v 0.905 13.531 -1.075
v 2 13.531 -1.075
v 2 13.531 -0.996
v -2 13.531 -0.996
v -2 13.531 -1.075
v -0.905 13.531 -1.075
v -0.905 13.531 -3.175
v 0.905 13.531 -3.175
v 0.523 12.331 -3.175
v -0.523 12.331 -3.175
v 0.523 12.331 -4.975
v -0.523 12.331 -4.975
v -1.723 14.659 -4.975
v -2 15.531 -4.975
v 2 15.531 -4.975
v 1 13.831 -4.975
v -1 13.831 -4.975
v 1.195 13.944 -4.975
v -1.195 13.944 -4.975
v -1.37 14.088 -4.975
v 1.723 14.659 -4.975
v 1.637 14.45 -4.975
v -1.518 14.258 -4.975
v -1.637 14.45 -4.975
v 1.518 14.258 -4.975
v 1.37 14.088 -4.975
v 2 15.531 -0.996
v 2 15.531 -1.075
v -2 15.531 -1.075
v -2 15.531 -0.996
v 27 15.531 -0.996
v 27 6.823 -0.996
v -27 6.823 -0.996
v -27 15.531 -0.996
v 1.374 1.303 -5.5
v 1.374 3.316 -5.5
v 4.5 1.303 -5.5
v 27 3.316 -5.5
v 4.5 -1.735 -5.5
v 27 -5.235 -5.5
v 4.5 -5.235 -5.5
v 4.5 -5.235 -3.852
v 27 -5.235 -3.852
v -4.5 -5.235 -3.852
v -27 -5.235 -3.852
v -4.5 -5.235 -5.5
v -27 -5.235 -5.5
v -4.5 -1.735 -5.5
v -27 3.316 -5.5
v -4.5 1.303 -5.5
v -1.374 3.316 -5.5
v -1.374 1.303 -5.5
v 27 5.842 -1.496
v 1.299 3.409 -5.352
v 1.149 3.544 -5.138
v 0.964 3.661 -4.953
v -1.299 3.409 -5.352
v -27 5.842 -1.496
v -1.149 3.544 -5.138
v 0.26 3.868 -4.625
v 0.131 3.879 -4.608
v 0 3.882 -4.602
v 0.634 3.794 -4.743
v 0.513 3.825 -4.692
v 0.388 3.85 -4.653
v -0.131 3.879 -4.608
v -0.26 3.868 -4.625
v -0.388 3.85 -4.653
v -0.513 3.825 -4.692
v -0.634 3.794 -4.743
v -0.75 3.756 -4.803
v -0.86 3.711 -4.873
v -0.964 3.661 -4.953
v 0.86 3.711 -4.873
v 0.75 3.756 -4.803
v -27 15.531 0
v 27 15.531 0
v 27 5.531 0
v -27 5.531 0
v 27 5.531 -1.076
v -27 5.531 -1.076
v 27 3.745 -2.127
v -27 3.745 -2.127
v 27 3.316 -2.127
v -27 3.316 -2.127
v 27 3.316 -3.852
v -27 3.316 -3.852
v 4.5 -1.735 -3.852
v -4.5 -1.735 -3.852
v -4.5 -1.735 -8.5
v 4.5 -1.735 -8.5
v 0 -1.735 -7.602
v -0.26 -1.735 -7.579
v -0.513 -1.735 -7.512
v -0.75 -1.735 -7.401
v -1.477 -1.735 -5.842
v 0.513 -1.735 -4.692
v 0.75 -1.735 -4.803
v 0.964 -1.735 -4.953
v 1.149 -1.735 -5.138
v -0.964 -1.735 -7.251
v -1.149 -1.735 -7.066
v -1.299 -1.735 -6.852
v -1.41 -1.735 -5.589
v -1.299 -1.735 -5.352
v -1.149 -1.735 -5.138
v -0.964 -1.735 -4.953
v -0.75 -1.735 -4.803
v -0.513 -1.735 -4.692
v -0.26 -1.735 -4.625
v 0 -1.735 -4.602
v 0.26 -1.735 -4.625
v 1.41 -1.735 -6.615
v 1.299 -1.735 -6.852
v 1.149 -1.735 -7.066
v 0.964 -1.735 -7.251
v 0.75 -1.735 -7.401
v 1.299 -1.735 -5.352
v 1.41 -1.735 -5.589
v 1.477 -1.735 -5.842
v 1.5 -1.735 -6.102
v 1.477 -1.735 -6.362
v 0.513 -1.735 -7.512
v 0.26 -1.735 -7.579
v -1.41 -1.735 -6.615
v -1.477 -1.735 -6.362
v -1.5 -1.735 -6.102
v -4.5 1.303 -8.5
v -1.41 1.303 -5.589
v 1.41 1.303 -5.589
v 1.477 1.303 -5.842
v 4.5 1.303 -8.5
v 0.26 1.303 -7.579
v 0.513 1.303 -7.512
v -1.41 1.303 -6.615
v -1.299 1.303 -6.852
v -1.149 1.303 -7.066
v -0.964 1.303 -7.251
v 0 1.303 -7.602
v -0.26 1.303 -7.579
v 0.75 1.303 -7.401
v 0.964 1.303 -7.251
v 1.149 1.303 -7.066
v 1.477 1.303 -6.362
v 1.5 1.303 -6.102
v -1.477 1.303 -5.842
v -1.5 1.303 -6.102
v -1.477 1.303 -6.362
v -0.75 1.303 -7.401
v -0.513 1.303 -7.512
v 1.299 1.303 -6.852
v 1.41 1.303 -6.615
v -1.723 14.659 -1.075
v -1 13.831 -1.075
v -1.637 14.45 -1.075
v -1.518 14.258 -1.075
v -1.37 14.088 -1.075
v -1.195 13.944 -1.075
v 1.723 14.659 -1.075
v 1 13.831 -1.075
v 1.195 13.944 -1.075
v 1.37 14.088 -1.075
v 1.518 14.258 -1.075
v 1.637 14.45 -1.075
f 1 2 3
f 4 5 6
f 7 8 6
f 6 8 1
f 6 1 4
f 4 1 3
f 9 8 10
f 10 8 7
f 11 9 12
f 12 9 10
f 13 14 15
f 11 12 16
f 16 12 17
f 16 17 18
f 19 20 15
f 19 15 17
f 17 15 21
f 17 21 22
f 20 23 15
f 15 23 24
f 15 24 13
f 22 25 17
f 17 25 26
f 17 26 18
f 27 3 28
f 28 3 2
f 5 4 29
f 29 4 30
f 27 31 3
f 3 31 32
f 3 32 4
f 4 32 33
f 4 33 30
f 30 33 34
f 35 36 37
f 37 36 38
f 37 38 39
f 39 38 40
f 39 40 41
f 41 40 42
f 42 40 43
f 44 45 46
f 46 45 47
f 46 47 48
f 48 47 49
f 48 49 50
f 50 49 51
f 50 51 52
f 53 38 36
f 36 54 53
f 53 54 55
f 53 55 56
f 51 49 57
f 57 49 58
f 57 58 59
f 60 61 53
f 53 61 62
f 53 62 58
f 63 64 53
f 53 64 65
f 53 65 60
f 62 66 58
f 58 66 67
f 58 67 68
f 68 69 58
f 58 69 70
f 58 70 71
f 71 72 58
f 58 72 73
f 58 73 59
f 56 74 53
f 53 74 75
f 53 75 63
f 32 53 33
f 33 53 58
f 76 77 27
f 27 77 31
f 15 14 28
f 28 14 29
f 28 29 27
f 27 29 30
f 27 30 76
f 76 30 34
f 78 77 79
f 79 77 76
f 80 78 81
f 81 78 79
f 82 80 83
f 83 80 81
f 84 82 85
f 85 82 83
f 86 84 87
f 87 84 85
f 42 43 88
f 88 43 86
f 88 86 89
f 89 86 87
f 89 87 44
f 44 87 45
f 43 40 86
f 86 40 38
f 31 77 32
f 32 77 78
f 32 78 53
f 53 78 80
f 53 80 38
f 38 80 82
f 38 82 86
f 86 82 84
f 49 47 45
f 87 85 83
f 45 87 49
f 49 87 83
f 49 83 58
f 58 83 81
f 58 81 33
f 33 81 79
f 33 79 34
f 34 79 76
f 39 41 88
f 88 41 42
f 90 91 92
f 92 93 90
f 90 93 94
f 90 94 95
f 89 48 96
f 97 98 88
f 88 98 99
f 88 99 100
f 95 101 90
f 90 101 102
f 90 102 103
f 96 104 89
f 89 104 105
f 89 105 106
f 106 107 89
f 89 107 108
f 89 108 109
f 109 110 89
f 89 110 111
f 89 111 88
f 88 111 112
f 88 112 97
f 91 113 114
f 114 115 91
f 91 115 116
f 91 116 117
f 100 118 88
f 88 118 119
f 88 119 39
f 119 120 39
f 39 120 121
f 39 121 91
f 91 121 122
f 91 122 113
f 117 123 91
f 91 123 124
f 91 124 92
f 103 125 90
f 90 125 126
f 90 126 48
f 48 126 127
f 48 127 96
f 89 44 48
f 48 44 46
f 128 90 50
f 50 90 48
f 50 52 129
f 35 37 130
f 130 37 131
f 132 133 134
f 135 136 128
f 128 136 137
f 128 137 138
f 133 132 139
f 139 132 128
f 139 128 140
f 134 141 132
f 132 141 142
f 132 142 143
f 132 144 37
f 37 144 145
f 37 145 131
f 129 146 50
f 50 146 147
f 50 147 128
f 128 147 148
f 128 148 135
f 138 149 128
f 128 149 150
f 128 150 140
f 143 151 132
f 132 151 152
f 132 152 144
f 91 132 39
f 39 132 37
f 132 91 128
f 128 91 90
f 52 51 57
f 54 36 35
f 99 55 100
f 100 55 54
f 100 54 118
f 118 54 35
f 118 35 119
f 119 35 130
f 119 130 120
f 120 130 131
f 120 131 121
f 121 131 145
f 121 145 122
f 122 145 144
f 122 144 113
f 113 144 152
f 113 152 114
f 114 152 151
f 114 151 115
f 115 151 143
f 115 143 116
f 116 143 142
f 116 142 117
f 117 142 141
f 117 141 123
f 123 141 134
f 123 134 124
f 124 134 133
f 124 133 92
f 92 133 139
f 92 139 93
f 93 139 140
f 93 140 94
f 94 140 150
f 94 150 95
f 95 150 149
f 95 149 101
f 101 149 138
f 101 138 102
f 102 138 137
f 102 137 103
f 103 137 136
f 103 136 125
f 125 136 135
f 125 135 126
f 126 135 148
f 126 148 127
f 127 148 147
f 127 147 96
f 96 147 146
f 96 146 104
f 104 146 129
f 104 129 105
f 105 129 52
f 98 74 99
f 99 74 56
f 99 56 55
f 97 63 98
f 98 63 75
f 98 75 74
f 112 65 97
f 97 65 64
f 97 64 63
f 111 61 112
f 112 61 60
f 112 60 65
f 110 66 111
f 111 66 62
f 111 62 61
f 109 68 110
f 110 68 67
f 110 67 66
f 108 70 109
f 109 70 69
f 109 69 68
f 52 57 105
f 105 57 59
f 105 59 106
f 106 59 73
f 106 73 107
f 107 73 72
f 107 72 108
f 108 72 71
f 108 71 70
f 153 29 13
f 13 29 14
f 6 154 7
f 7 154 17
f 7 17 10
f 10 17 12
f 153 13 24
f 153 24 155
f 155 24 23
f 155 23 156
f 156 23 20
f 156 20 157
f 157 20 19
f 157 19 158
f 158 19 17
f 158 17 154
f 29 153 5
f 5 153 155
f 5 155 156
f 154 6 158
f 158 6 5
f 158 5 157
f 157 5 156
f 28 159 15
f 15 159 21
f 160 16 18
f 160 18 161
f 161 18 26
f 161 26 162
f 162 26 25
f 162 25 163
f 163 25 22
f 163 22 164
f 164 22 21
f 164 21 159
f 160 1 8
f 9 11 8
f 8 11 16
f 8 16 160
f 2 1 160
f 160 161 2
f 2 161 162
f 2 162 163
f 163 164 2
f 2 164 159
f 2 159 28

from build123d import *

# Parameters (mm, degrees)
EXTRUDE_1_DEPTH     = 27
SKETCH_2_W          = 9
SKETCH_2_H          = 4
CUT_EXTRUDE_1_DEPTH = 4
SKETCH_3_W          = 9
SKETCH_3_H          = 3.038101075
EXTRUDE_2_DEPTH     = 3
SKETCH_4_R          = 1.5
CUT_EXTRUDE_2_DEPTH = 9
EXTRUDE_3_DEPTH     = 2
CUT_EXTRUDE_8_DEPTH = 3.9


with BuildPart() as part:
    # 草图1 → 凸台-拉伸1 (new, symmetric)
    with BuildSketch(Plane(origin=(0, 0, 0), x_dir=(0, 0, -1), z_dir=(1, 0, 0))):
        Polygon((5.5, -5.234874936), (5.5, -1.276151444), (5.5, 1.303226139), (5.5, 3.316049082), (1.495683541, 5.841749257), (0.996390194, 6.822725158), (0.996390194, 8.881545648), (0.996390194, 13.350016649), (0.996390194, 15.531060696), (0, 15.531060696), (0, 13.265125064), (0, 9.02431695), (0, 5.531060696), (1.075983727, 5.531060696), (2.127060271, 3.7449116), (2.127060271, 3.316049082), (3.852001832, 3.316049082), (3.852001832, -5.234874936), align=None)
    extrude(amount=EXTRUDE_1_DEPTH, both=True)

    # 草图2 → 切除-拉伸1 (cut)
    with BuildSketch(Plane(origin=(0, 0, -5.5), x_dir=(-1, 0, 0), z_dir=(0, 0, -1))):
        with Locations((0, -3.734874936)):
            Rectangle(SKETCH_2_W, SKETCH_2_H)
    extrude(amount=-CUT_EXTRUDE_1_DEPTH, mode=Mode.SUBTRACT)

    # 草图3 → 凸台-拉伸2 (add)
    with BuildSketch(Plane(origin=(0, 0, -5.5), x_dir=(-1, 0, 0), z_dir=(0, 0, -1))):
        with Locations((0, -0.215824399)):
            Rectangle(SKETCH_3_W, SKETCH_3_H)
    extrude(amount=EXTRUDE_2_DEPTH)

    # 草图4 → 切除-拉伸2 (cut)
    with BuildSketch(Plane.XZ.offset(1.734874936)):
        with Locations(Location((0, -6.102001832, 0), (0, 0, 270))):
            Circle(SKETCH_4_R)
    extrude(amount=-CUT_EXTRUDE_2_DEPTH, mode=Mode.SUBTRACT)

    # 草图6 → 凸台-拉伸3 (add, symmetric)
    with BuildSketch(Plane(origin=(0, 0, 0), x_dir=(0, 0, -1), z_dir=(1, 0, 0))):
        Polygon((0.975132856, 15.531060696), (4.975132856, 15.531060696), (4.975132856, 12.331060696), (3.175132856, 12.331060696), (3.175132856, 13.531060696), (2.0593477, 13.531060696), (0.975132856, 13.531060696), align=None)
    extrude(amount=EXTRUDE_3_DEPTH, both=True)

    # 草图7 → 切除-拉伸8 (cut)
    with BuildSketch(Plane(origin=(0, 0, -4.975132856), x_dir=(-1, 0, 0), z_dir=(0, 0, -1))):
        with BuildLine():
            Line((1, 13.831060696), (0.52341558, 12.331060696))
            Line((0.52341558, 12.331060696), (2, 12.331060696))
            Line((2, 12.331060696), (2, 15.531060696))
            Line((2, 15.531060696), (1.723060875, 14.659423543))
            ThreePointArc((1.723060875, 14.659423543), (1.447645575, 14.170073989), (1, 13.831060696))
        make_face()
        with BuildLine():
            ThreePointArc((-1.723060875, 14.659423543), (-1.447645575, 14.170073989), (-1, 13.831060696))
            Line((-1, 13.831060696), (-0.52341558, 12.331060696))
            Line((-0.52341558, 12.331060696), (-2, 12.331060696))
            Line((-2, 12.331060696), (-2, 15.531060696))
            Line((-2, 15.531060696), (-1.723060875, 14.659423543))
        make_face()
    extrude(amount=-CUT_EXTRUDE_8_DEPTH, mode=Mode.SUBTRACT)


solid = part.part
